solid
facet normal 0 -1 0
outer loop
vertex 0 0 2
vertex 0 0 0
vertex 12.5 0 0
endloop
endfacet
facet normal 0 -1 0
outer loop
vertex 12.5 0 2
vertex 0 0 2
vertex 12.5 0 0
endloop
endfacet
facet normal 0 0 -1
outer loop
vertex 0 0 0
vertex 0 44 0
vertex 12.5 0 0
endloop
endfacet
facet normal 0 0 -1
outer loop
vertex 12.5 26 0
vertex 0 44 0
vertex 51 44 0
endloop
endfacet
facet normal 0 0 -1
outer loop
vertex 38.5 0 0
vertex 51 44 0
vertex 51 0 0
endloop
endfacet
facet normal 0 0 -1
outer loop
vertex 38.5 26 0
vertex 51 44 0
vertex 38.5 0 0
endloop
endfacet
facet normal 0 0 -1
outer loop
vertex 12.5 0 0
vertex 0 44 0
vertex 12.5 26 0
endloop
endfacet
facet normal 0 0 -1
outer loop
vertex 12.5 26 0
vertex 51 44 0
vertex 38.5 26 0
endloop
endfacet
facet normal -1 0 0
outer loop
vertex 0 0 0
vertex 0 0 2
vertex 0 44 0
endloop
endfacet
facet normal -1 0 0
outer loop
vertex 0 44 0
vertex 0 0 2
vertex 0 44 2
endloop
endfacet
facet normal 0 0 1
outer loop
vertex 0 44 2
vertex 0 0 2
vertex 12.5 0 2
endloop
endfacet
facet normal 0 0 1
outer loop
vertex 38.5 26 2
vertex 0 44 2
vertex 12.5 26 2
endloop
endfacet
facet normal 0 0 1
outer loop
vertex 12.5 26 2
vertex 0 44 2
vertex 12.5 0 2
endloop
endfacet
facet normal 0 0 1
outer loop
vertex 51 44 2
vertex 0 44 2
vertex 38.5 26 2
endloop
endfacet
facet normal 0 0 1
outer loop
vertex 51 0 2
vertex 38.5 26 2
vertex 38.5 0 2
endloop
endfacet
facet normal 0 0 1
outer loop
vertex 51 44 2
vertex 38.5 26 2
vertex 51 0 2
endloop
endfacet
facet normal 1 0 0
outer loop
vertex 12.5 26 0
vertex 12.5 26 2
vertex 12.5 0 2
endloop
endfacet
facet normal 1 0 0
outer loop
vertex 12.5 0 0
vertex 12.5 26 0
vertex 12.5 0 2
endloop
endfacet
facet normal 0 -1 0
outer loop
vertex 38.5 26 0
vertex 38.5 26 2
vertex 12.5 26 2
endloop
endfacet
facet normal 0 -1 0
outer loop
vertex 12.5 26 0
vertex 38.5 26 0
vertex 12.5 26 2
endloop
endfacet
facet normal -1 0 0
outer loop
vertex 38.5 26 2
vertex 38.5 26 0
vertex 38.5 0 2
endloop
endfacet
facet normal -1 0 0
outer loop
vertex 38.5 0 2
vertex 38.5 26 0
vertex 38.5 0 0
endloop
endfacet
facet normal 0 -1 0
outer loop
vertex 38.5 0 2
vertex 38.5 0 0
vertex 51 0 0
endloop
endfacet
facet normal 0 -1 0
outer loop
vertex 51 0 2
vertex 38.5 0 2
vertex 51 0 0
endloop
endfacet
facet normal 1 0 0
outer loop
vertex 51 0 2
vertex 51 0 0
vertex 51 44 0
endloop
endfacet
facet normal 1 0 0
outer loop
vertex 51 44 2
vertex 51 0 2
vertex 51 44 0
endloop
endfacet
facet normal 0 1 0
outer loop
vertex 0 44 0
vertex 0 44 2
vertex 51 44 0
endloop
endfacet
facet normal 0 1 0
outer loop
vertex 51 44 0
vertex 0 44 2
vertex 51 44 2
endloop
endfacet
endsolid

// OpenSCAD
dx = 37+7+7;
dy = 37+7;


difference(){
cube([dx,dy,2]);
translate([dx/2-26/2,0,0])cube([26,26,2]);
};
